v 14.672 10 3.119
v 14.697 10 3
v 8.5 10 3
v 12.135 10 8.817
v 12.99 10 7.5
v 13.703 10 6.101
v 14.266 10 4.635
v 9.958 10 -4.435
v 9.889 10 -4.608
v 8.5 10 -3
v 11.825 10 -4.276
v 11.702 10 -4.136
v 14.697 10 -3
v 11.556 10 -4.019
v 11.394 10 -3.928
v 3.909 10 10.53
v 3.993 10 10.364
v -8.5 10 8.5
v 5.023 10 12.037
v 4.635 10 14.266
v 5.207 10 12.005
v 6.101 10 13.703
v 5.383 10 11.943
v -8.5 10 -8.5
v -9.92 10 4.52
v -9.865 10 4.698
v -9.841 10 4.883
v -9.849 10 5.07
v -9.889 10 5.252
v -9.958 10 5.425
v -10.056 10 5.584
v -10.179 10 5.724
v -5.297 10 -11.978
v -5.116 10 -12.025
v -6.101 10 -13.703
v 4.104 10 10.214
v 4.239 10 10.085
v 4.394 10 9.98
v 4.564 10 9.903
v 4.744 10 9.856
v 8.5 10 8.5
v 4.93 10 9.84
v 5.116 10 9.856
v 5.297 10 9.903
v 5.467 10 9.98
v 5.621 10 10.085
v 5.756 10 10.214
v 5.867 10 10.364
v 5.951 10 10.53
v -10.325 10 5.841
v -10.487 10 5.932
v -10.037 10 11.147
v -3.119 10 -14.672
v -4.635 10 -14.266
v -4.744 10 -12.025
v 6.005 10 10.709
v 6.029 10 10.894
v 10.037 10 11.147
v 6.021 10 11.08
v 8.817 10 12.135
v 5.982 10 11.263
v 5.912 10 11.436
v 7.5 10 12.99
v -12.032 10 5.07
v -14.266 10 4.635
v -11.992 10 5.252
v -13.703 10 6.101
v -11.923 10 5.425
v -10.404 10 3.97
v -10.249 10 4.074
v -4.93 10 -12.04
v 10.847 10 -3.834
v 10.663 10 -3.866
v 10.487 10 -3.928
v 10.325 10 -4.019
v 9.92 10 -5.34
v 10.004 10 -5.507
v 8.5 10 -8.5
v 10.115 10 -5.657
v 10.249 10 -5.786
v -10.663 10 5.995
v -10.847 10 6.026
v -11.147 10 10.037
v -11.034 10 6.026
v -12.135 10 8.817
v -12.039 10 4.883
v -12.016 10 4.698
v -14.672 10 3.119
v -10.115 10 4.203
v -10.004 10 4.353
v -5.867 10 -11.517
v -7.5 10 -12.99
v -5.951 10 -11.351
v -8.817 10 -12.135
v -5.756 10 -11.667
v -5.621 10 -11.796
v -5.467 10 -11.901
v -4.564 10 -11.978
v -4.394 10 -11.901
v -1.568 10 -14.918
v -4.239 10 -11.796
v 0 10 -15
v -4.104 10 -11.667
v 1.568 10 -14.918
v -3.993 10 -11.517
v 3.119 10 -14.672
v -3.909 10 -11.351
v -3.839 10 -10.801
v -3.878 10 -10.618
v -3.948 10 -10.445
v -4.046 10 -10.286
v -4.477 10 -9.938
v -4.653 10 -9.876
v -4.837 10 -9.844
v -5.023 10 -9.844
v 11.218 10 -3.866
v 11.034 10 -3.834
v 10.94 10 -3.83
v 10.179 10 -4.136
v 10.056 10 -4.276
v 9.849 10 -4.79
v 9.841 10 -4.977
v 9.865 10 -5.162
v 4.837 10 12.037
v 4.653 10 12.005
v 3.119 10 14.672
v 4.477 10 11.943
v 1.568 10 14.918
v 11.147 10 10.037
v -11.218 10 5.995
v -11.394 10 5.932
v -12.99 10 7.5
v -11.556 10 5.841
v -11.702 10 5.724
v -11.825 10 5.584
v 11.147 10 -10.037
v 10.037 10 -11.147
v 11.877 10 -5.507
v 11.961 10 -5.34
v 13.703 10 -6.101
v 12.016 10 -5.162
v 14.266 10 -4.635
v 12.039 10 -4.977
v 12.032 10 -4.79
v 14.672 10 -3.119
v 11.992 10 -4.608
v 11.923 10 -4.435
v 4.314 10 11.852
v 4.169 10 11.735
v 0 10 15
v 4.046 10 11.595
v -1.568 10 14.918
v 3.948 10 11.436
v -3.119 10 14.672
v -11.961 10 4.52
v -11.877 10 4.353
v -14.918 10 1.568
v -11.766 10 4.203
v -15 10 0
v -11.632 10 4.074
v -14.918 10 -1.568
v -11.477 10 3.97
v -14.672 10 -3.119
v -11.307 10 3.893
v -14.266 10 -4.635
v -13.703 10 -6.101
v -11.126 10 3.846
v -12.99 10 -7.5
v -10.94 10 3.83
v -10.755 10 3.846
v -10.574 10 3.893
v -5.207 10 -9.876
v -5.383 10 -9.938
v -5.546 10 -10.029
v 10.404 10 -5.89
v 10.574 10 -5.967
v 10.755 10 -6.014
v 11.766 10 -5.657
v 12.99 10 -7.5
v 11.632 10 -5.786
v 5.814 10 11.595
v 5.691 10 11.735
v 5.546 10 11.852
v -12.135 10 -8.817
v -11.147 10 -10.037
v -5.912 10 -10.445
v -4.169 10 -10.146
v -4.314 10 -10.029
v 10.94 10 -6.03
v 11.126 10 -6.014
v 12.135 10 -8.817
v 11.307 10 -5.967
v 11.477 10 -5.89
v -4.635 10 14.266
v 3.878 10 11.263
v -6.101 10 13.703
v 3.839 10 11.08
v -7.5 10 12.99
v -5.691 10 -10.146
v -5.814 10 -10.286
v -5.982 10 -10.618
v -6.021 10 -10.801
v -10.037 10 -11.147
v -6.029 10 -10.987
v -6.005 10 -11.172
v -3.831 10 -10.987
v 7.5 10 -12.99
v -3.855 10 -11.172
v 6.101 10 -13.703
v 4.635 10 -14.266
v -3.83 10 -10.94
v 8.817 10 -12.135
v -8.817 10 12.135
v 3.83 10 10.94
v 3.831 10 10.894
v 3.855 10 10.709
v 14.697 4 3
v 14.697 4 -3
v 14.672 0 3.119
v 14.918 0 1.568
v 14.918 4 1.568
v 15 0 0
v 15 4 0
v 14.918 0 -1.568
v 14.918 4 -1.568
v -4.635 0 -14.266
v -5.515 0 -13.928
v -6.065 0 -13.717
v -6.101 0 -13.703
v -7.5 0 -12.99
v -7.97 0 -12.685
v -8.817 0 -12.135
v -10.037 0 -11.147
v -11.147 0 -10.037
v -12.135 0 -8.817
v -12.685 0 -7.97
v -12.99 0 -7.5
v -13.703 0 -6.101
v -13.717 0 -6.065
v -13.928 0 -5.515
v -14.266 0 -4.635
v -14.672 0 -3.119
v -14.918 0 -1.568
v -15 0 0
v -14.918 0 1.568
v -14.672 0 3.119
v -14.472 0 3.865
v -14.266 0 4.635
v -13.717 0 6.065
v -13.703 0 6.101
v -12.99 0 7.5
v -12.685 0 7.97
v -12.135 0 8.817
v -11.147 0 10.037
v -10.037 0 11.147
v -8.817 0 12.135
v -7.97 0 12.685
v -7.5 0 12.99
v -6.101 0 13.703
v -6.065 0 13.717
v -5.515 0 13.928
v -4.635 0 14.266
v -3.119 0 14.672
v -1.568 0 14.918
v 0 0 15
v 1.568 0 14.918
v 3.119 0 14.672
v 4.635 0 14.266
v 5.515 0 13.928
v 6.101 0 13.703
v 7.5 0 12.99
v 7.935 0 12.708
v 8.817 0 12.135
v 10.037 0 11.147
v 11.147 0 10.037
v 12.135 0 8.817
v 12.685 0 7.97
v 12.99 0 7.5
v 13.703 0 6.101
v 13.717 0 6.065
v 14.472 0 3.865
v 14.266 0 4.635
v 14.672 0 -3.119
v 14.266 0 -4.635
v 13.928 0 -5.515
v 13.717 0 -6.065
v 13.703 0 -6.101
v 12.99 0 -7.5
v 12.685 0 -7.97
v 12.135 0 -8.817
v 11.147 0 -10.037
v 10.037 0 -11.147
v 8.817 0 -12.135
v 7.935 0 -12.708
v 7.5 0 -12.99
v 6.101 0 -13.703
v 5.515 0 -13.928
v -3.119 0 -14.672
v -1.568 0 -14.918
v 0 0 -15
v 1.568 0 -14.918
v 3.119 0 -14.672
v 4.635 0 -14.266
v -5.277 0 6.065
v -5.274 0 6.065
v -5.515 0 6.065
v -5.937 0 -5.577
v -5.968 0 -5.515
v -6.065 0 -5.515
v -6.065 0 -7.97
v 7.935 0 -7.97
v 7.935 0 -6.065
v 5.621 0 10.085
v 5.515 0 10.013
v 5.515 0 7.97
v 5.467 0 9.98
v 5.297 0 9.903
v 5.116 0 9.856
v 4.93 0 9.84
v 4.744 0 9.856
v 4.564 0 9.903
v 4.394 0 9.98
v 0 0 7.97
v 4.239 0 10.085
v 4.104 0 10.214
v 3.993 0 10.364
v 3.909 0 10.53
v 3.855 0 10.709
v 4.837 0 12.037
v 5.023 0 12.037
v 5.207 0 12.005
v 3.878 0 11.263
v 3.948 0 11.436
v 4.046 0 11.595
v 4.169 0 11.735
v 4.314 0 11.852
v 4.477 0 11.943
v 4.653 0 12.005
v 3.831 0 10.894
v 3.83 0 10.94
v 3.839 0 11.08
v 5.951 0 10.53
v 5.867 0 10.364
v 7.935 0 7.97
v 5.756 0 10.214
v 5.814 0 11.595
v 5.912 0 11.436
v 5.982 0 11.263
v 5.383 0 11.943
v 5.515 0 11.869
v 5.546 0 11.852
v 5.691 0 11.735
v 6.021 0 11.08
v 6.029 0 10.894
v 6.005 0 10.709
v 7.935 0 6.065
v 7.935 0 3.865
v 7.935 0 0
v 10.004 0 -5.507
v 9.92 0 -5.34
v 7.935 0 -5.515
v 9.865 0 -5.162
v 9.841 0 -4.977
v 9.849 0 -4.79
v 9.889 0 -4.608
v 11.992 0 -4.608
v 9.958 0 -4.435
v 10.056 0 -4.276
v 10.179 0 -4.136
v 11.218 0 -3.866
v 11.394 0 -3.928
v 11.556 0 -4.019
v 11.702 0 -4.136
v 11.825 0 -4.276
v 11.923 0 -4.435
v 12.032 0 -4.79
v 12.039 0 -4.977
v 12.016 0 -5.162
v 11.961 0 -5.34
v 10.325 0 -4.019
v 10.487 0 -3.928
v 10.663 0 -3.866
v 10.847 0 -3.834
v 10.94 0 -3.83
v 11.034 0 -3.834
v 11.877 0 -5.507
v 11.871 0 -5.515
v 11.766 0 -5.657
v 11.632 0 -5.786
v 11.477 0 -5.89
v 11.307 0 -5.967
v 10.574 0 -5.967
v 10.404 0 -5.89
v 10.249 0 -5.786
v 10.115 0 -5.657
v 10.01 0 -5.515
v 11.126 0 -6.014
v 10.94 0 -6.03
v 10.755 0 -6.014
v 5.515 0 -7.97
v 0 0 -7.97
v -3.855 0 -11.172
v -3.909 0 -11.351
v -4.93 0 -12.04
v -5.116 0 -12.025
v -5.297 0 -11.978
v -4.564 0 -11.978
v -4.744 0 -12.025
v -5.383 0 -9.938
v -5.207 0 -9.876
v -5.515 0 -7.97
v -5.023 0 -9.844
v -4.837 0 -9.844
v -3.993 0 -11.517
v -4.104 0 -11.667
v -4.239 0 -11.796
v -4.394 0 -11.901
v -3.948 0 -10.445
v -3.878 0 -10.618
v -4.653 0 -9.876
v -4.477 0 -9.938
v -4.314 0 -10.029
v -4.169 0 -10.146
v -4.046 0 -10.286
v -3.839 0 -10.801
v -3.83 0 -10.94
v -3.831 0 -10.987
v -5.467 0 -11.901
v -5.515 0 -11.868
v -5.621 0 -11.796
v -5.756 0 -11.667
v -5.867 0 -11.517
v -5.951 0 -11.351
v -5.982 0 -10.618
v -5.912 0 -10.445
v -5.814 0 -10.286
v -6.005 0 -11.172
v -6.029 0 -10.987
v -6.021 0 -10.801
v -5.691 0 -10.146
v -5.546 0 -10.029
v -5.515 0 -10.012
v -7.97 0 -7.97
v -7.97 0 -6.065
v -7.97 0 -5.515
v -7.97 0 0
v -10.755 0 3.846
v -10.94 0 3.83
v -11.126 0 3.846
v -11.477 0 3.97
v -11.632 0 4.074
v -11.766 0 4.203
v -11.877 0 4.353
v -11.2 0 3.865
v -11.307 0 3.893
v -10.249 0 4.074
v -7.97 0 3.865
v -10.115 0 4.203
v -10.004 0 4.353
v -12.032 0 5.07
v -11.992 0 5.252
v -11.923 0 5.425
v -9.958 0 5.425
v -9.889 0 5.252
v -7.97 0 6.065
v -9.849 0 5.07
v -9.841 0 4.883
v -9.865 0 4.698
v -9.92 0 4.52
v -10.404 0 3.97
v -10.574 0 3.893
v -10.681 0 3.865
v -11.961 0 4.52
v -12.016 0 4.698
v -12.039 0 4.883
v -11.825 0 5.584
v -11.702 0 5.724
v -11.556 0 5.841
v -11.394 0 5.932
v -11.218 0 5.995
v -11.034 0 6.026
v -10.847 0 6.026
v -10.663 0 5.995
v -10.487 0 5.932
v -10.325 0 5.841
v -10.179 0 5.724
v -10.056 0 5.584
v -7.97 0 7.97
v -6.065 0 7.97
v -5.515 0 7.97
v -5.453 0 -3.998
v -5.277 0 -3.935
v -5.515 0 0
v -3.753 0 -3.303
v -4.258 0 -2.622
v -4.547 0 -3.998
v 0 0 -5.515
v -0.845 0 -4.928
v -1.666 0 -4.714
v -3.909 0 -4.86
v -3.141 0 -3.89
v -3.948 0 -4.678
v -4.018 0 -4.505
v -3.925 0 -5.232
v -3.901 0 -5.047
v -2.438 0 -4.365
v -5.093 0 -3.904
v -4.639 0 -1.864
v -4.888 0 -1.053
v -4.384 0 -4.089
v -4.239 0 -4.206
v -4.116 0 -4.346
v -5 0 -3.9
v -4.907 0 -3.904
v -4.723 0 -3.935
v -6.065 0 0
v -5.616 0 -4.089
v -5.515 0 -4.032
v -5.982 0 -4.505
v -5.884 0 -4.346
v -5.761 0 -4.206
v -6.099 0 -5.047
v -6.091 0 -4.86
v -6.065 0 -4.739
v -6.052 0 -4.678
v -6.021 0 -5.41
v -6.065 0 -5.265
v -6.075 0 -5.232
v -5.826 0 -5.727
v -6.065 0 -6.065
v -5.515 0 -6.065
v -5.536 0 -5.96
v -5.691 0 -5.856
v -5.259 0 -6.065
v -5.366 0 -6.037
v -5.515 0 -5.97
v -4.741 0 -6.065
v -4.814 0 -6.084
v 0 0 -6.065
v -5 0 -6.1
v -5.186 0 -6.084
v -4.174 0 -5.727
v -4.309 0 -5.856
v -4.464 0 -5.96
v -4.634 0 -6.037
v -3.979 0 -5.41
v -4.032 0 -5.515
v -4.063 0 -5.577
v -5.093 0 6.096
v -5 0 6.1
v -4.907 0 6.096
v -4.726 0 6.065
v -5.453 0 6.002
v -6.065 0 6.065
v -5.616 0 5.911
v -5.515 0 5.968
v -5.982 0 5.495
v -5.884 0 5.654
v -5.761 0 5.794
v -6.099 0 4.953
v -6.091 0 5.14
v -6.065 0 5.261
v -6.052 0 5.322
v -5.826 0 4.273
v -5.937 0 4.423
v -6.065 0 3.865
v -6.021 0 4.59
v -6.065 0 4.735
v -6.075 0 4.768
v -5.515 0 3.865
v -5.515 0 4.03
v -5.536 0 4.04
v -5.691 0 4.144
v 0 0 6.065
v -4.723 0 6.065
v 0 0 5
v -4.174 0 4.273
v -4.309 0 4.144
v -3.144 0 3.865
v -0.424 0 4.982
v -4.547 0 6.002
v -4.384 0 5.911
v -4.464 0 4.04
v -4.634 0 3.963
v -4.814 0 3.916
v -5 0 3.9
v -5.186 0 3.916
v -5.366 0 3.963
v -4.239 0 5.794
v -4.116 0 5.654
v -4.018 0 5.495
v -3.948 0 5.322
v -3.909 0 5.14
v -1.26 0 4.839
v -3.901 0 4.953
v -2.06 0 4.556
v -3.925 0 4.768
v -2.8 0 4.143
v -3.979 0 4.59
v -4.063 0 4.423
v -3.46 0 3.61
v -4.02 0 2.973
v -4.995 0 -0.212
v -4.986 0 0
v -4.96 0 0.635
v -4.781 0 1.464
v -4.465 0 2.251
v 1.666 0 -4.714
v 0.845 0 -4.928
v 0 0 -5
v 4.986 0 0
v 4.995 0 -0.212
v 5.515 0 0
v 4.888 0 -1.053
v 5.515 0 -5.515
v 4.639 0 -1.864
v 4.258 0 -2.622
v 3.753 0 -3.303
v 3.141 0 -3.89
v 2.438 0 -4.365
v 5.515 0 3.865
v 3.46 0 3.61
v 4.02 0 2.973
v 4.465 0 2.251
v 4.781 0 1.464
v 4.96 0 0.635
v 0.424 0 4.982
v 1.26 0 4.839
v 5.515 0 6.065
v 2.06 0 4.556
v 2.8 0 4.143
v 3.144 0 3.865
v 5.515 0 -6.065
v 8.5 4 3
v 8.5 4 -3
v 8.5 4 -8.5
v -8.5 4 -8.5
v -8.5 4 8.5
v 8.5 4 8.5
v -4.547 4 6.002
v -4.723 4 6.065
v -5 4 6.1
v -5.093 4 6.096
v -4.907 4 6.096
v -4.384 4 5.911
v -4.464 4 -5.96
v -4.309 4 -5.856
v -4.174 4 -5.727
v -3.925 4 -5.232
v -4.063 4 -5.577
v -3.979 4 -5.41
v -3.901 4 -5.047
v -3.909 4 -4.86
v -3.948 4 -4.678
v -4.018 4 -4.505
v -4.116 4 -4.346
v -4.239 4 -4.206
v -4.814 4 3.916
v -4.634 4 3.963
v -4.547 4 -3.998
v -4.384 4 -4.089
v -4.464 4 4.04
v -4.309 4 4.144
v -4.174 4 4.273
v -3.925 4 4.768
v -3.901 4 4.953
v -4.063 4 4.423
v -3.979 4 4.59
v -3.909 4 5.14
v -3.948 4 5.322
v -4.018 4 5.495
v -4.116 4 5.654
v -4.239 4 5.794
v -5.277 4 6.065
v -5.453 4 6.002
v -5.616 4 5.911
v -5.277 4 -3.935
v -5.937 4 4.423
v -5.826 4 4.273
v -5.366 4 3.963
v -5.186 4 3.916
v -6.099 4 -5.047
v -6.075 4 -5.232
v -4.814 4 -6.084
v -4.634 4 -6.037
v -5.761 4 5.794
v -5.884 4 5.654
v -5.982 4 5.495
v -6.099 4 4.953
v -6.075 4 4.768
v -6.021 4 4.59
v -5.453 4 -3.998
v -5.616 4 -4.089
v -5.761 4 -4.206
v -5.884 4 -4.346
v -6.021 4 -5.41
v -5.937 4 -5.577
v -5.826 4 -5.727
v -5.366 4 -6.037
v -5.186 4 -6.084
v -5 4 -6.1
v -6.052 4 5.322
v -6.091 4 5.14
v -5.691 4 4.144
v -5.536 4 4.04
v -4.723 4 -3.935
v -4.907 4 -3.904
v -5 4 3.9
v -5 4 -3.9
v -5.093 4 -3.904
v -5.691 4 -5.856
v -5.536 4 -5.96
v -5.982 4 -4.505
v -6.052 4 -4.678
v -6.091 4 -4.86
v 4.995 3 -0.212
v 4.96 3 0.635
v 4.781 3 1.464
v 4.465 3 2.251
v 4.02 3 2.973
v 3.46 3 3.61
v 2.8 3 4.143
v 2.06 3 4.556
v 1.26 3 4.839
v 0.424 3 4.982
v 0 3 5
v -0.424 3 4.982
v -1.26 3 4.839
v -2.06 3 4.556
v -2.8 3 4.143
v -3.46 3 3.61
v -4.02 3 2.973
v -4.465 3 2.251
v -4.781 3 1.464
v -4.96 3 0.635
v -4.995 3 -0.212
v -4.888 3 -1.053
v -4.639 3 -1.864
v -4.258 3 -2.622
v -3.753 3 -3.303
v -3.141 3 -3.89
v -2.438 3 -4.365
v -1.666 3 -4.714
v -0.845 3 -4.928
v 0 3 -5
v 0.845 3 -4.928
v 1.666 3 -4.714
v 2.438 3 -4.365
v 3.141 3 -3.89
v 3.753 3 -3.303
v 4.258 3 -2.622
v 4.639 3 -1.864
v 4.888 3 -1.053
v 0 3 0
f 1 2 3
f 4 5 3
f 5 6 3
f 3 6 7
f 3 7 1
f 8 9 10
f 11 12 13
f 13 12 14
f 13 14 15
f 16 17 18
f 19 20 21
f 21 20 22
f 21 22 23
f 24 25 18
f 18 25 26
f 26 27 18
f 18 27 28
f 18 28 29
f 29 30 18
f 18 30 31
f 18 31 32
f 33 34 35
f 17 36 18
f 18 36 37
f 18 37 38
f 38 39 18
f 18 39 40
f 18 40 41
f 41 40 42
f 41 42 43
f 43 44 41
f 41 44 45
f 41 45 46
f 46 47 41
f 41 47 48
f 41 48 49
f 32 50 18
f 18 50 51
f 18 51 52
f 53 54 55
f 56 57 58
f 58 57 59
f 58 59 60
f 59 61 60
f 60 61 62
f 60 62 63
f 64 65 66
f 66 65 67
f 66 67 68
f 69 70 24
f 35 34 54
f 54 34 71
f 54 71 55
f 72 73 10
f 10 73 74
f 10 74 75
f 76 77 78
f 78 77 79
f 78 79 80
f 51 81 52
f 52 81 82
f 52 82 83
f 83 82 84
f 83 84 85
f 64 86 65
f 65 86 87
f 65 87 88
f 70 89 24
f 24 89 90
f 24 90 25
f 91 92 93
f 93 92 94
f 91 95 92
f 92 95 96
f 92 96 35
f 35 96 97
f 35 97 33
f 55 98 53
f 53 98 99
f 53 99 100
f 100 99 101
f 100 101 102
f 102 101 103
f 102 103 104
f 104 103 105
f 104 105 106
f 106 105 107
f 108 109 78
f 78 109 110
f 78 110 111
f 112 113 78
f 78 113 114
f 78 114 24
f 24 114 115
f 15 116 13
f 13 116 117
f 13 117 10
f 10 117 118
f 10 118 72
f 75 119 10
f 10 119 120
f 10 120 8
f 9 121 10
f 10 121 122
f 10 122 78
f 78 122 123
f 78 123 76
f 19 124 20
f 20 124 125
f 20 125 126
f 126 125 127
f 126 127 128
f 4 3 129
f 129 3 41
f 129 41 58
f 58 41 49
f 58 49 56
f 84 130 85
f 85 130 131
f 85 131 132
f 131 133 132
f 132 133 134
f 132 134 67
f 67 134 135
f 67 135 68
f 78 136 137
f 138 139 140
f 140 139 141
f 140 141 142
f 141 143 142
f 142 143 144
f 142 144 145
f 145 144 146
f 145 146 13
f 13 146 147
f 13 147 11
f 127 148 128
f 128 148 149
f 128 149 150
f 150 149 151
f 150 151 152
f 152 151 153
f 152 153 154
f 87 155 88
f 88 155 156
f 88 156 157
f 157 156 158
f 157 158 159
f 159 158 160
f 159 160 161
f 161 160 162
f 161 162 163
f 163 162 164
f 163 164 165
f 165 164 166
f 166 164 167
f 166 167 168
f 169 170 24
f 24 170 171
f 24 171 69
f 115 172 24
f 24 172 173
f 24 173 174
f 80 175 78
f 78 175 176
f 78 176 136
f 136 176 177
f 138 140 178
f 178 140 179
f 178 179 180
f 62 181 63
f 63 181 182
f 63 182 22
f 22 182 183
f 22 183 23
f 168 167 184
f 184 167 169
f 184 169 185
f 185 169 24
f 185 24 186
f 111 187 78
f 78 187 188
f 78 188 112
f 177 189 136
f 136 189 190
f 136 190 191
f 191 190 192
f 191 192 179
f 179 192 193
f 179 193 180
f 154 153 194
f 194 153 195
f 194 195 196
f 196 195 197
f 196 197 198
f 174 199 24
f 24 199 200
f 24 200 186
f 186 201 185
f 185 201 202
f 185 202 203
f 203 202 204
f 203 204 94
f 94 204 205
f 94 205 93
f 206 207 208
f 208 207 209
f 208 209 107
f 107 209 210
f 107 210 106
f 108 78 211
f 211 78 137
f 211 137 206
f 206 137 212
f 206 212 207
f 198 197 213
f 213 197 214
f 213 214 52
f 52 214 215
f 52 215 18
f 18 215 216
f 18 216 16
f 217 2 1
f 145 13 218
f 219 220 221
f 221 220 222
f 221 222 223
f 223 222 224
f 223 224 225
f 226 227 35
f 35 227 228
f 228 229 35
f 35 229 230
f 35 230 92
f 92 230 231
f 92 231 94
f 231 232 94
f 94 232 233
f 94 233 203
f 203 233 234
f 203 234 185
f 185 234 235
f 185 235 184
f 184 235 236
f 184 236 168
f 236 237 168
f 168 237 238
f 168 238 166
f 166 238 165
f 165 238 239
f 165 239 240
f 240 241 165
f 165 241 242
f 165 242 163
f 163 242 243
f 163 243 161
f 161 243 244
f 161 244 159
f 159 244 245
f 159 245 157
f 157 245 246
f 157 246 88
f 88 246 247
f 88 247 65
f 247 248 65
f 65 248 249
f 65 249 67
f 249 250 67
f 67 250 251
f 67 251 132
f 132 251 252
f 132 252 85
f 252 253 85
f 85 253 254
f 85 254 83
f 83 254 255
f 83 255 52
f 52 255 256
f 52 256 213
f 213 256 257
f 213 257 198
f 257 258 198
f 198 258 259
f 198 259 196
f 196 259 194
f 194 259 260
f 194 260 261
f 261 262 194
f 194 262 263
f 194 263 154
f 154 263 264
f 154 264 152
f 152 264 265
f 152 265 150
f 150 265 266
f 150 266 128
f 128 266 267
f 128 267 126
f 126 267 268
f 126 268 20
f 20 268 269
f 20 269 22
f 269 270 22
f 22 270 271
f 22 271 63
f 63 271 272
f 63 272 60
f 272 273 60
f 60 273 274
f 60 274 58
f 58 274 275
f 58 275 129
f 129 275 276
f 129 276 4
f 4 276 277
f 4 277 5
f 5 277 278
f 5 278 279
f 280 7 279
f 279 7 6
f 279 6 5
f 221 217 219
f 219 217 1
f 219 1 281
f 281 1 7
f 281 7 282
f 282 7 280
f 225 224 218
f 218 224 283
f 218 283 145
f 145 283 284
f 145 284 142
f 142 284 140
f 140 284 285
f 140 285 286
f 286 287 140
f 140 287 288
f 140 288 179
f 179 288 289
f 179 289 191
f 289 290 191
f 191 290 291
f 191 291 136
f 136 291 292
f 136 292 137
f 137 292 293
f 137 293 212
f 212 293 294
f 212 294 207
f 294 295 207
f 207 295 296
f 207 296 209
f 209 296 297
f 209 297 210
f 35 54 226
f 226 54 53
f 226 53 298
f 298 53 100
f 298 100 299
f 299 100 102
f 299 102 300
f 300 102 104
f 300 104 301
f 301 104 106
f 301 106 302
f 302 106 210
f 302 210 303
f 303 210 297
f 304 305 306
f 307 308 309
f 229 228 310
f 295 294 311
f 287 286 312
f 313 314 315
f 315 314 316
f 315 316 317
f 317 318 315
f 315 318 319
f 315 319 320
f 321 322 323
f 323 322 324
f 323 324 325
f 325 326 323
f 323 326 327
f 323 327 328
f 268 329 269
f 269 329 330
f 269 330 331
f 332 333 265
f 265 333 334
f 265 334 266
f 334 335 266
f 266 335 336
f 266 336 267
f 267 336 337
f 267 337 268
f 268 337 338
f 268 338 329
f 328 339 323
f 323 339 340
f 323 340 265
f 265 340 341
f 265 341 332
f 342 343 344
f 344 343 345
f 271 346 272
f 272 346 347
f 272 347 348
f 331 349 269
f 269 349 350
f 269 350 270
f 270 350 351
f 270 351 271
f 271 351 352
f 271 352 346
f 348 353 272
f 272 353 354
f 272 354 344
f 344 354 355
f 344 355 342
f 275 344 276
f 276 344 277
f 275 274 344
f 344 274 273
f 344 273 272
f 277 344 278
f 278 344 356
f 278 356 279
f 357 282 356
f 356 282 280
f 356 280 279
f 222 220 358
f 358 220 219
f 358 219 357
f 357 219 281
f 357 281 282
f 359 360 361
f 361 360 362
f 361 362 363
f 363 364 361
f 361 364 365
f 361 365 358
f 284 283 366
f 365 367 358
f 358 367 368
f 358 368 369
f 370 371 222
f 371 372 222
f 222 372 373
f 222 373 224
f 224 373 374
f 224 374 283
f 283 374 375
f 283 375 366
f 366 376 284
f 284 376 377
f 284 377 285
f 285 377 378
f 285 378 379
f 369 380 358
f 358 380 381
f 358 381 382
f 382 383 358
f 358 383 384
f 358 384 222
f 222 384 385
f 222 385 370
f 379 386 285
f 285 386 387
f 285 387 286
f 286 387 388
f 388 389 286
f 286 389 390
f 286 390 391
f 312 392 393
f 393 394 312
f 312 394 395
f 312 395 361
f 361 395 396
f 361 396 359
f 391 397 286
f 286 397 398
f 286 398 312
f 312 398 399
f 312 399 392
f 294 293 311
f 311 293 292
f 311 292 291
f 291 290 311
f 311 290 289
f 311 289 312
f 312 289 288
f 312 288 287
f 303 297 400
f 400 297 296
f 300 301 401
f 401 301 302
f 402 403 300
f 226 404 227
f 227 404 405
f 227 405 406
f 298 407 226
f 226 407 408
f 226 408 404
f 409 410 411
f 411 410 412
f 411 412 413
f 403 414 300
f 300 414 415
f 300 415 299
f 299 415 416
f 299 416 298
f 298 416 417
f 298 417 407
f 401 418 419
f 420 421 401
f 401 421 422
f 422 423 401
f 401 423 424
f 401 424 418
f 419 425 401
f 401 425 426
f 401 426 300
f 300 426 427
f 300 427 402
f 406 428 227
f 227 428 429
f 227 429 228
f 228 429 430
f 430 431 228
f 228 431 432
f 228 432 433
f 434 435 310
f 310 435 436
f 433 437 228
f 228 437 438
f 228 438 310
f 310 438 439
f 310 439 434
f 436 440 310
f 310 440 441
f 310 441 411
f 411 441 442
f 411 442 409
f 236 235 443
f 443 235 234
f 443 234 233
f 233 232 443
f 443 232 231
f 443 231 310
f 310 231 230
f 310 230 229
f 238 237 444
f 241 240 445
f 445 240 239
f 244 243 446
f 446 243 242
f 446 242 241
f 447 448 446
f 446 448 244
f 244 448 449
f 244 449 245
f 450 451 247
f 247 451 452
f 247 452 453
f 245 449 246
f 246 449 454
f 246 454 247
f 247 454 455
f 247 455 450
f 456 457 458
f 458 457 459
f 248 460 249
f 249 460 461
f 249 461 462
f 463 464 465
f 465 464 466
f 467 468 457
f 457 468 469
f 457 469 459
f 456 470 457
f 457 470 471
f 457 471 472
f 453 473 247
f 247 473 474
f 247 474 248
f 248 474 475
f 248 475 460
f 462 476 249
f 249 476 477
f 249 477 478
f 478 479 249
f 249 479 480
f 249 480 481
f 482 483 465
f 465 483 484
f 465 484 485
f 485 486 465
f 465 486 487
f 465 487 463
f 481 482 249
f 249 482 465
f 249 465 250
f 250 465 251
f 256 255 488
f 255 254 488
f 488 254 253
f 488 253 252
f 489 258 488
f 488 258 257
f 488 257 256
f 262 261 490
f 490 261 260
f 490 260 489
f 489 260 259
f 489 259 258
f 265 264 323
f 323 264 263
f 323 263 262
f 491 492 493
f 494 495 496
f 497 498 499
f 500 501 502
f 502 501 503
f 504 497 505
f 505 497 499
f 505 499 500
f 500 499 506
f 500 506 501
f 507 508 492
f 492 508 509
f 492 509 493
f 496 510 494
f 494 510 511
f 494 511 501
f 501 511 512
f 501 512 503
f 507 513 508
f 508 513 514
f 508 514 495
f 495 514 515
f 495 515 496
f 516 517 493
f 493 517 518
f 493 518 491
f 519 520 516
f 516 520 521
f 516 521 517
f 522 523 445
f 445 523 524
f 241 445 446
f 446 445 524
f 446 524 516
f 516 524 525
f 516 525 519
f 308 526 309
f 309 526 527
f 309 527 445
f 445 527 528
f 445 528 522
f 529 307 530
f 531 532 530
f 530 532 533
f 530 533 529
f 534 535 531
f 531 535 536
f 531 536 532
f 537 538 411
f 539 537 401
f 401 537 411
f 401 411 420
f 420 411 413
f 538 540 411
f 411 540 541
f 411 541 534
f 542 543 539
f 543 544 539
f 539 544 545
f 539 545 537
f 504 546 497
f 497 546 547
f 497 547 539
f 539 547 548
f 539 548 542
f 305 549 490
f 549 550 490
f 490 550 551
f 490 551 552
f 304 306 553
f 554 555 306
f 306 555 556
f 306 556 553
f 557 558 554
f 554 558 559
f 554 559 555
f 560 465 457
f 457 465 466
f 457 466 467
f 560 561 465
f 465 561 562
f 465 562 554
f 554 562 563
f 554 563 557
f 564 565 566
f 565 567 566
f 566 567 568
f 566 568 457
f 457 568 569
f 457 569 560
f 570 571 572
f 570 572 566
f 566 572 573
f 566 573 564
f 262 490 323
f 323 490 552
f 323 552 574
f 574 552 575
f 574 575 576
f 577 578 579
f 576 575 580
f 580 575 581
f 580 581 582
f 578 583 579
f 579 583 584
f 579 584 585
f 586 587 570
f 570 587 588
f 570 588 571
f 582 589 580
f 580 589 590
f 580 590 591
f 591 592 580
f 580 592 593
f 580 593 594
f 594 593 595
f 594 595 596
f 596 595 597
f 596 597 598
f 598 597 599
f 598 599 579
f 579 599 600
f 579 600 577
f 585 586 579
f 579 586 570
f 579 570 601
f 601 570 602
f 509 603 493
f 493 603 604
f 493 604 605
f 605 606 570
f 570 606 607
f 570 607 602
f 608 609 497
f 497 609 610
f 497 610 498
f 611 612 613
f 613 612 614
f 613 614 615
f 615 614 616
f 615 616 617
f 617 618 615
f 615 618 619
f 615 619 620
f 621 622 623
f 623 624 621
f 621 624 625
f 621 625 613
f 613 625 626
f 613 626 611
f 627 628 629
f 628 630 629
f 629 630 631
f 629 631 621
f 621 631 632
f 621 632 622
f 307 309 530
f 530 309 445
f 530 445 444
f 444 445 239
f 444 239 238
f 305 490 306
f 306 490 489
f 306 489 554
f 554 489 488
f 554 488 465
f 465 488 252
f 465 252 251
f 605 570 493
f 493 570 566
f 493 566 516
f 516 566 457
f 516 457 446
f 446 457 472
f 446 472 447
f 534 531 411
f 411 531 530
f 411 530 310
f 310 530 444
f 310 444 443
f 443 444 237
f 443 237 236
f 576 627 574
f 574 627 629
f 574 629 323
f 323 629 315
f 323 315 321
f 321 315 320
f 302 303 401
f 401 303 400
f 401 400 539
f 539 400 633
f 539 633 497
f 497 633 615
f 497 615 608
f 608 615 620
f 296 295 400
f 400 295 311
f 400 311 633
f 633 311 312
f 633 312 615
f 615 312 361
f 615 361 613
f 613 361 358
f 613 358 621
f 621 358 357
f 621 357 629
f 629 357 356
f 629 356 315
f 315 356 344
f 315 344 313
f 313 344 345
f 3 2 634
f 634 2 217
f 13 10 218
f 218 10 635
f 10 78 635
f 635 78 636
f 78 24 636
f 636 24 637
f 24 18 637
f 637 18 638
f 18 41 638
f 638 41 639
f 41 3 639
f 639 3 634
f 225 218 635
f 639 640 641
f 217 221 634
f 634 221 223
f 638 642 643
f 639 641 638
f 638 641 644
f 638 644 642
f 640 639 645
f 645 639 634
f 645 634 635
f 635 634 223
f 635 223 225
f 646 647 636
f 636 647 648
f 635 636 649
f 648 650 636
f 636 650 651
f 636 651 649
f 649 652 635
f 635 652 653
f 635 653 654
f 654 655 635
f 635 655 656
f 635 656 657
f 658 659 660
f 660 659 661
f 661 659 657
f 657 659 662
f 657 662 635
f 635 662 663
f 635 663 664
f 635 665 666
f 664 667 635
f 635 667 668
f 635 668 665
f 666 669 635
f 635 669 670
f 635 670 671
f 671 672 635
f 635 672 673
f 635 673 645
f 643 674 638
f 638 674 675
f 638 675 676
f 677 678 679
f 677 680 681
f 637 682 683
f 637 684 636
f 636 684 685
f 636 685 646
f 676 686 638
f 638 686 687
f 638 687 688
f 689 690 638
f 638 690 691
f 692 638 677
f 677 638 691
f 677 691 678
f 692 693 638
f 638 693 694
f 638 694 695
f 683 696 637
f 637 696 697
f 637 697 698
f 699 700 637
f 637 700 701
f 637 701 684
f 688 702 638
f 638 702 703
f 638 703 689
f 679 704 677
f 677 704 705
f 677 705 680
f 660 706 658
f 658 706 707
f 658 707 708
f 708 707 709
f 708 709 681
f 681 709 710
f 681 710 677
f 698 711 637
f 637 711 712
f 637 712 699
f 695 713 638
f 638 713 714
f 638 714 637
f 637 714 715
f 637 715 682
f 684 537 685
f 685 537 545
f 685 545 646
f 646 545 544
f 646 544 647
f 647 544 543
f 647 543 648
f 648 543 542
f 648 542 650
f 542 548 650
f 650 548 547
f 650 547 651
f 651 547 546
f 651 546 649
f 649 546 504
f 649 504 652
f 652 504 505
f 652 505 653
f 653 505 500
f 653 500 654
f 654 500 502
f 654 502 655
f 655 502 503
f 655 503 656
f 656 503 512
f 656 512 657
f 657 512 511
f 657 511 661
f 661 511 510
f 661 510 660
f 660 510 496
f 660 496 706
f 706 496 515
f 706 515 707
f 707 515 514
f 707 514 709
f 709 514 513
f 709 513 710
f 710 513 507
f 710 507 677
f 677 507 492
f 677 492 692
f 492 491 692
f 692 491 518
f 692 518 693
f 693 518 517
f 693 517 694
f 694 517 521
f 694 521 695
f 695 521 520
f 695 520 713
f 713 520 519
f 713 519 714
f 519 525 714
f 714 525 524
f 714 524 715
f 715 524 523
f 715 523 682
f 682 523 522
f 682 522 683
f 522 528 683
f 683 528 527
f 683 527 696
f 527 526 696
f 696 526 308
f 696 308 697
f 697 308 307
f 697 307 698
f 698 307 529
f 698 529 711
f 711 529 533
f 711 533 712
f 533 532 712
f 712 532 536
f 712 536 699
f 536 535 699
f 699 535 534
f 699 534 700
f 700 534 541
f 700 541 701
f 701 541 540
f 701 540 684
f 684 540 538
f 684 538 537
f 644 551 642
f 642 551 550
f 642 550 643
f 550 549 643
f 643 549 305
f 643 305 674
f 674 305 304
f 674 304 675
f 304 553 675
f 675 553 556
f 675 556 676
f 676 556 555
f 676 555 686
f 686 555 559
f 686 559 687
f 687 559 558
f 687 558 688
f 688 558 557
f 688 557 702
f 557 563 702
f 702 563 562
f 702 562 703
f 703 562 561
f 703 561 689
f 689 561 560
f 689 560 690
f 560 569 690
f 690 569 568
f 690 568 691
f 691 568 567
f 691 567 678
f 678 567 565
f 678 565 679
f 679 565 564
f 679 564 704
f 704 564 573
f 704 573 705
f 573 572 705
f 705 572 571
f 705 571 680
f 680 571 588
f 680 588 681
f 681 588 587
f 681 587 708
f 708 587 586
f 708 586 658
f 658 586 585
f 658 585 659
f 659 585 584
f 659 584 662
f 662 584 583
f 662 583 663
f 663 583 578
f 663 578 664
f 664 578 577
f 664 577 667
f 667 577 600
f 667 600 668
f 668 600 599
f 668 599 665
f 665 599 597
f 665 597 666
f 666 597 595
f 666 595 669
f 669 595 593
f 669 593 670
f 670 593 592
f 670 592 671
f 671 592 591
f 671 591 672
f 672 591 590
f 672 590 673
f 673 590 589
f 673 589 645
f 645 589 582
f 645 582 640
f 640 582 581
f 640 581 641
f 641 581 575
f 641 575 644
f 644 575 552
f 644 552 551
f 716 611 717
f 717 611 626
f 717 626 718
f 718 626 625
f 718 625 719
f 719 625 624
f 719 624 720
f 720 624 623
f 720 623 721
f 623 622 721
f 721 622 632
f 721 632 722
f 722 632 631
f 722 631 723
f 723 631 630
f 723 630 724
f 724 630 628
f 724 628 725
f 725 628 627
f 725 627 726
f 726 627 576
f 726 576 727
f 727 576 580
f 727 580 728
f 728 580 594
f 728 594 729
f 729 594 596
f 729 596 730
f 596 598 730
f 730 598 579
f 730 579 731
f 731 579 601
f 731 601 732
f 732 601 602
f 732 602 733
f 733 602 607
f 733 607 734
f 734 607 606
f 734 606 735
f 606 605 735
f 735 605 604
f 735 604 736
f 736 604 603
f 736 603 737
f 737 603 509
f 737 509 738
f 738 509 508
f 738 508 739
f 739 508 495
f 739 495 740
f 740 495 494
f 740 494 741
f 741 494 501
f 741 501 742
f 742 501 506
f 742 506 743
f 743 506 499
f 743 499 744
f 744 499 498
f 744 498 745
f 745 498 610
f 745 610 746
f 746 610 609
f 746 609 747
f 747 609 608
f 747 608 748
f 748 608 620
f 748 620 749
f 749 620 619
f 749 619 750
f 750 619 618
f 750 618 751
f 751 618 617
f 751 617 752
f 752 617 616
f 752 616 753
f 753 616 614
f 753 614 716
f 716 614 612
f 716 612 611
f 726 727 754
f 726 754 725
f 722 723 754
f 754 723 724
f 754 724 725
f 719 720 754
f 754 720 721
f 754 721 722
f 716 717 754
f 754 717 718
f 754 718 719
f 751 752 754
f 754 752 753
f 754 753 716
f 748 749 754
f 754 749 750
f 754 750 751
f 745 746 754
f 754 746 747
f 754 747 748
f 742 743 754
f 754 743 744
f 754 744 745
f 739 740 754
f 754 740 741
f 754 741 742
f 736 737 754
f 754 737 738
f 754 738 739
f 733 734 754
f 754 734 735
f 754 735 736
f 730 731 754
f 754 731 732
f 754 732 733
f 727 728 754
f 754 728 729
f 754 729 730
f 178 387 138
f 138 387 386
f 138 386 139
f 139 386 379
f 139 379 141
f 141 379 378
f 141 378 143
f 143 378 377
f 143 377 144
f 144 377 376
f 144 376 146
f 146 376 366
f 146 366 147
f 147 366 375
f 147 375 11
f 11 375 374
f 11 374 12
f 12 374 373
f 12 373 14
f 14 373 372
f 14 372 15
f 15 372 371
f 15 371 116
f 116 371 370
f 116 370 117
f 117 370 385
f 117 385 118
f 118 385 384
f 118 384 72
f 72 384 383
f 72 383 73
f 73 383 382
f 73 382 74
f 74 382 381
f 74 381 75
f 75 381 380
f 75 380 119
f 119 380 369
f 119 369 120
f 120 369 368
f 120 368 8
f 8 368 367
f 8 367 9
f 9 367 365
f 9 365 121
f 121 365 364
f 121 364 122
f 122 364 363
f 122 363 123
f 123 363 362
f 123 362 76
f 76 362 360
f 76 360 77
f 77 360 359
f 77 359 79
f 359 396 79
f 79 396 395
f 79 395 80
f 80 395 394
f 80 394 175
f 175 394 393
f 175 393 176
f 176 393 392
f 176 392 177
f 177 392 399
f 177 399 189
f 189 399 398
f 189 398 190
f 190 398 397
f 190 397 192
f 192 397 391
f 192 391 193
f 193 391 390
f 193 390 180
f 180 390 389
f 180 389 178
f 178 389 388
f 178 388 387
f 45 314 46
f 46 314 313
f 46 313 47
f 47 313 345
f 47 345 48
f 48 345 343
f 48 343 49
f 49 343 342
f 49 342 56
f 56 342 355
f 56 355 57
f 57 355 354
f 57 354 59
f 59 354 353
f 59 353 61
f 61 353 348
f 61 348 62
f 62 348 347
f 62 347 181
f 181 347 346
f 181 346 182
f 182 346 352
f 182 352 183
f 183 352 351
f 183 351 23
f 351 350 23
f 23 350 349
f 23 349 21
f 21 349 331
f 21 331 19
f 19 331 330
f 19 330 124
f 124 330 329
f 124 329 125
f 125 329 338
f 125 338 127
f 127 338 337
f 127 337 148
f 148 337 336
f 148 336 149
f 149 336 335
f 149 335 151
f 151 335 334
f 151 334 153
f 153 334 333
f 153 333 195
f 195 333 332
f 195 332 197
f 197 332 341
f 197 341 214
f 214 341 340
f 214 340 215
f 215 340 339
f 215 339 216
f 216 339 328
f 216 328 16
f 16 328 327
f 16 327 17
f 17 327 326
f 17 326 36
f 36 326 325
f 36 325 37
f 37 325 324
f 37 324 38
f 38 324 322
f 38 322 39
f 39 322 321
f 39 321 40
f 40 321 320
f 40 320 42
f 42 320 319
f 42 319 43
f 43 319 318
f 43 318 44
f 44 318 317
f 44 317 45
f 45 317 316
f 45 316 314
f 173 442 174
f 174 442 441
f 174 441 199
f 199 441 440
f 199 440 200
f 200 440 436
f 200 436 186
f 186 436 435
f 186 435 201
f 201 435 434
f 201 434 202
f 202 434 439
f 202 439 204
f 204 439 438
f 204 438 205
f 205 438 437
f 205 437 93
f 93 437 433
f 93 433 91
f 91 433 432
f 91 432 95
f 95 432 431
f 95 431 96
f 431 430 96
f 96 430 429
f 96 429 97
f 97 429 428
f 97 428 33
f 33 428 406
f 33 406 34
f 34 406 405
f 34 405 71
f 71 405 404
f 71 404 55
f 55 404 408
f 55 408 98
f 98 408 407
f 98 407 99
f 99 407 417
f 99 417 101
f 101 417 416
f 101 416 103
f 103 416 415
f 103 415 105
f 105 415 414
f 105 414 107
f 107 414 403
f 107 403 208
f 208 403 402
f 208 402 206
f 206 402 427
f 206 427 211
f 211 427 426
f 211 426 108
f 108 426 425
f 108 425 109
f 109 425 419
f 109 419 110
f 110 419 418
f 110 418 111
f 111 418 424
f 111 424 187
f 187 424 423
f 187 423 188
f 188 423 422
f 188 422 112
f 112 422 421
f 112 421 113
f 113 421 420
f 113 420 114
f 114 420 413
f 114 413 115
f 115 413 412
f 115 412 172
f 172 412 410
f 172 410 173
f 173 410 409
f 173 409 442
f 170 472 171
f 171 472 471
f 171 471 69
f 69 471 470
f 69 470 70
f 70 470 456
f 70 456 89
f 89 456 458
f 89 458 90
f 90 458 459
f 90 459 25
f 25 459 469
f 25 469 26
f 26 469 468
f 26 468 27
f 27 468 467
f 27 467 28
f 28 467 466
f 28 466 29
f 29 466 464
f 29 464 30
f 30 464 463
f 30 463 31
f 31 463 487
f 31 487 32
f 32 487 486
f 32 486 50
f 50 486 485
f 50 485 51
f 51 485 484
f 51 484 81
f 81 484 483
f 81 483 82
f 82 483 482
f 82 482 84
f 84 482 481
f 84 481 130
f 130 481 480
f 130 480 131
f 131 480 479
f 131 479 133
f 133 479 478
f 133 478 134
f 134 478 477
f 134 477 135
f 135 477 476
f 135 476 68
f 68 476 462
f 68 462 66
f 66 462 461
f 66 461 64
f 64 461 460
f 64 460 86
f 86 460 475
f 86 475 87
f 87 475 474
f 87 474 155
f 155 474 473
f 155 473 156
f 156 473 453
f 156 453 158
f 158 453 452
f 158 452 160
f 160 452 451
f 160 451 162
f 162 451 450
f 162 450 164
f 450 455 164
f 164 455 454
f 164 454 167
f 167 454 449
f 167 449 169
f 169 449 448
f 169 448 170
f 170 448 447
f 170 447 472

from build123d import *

# Parameters (mm, degrees)
SKETCH1_R                   = 15
BOSS_EXTRUDE1_DEPTH         = 10
ACCEL_START                 = 4
SKETCH1_3_R                 = 1.1
ACCEL_CUTOUT_DEPTH          = 6
SKETCH1_4_R                 = 1.1
ACCEL_MOUNT_HOLES_DEPTH     = 24.452078799
SKETCH2_R                   = 5
REAR_THREAD_INSERT_DEPTH    = 3
SKETCH1_5_R                 = 1.1
LAYERSCREW_HOLES_DEPTH      = 24.452078799
LAYERSCREW_HOLES_MORE_COUNT = 4


with BuildPart() as part:
    # Sketch1 → Boss-Extrude1 (new body)
    with BuildSketch(Plane(origin=(0, 0, 0), x_dir=(1, 0, 0), z_dir=(0, 1, 0))):
        Circle(SKETCH1_R)
    extrude(amount=BOSS_EXTRUDE1_DEPTH)

    # Sketch1<3> → accel cutout (cut)
    with BuildSketch(Plane(origin=(0, 0, 0), x_dir=(1, 0, 0), z_dir=(0, 1, 0)).offset(ACCEL_START)):
        with BuildLine():
            Line((-8.5, 8.5), (-8.5, -8.5))
            Line((-8.5, -8.5), (8.5, -8.5))
            Line((8.5, -8.5), (8.5, -3))
            Line((8.5, -3), (14.696938457, -3))
            ThreePointArc((14.696938457, -3), (15, 0), (14.696938457, 3))
            Line((14.696938457, 3), (8.5, 3))
            Line((8.5, 3), (8.5, 8.5))
            Line((8.5, 8.5), (-8.5, 8.5))
        make_face()
        with Locations((-5, 5)):
            Circle(SKETCH1_3_R, mode=Mode.SUBTRACT)
        with Locations((-5, -5)):
            Circle(SKETCH1_3_R, mode=Mode.SUBTRACT)
    extrude(amount=ACCEL_CUTOUT_DEPTH, mode=Mode.SUBTRACT)

    # Sketch1<4> → accel mount holes (cut, through all)
    with BuildSketch(Plane(origin=(0, 0, 0), x_dir=(1, 0, 0), z_dir=(0, 1, 0))):
        with Locations((-5, 5)):
            Circle(SKETCH1_4_R)
        with Locations((-5, -5)):
            Circle(SKETCH1_4_R)
    extrude(amount=ACCEL_MOUNT_HOLES_DEPTH, mode=Mode.SUBTRACT)

    # Sketch2 → rear thread insert (cut)
    with BuildSketch(Plane(origin=(0, 0, 0), x_dir=(1, 0, 0), z_dir=(0, 1, 0))):
        Circle(SKETCH2_R)
    extrude(amount=REAR_THREAD_INSERT_DEPTH, mode=Mode.SUBTRACT)

    # Sketch1<5> → layerscrew holes (cut, through all)
    with BuildSketch(Plane(origin=(0, 0, 0), x_dir=(1, 0, 0), z_dir=(0, 1, 0))):
        with Locations((10.940488944, 4.930081304)):
            Circle(SKETCH1_5_R)
    layerscrew_holes = extrude(amount=LAYERSCREW_HOLES_DEPTH, mode=Mode.SUBTRACT)

    # layerscrew holes more: layerscrew holes ×4 about axis
    layerscrew_holes_more_axis = Axis((0, 10, 0), (0, -1, 0))
    for i in range(1, LAYERSCREW_HOLES_MORE_COUNT):
        add(layerscrew_holes.rotate(layerscrew_holes_more_axis, i * 360 / LAYERSCREW_HOLES_MORE_COUNT), mode=Mode.SUBTRACT)


solid = part.part
